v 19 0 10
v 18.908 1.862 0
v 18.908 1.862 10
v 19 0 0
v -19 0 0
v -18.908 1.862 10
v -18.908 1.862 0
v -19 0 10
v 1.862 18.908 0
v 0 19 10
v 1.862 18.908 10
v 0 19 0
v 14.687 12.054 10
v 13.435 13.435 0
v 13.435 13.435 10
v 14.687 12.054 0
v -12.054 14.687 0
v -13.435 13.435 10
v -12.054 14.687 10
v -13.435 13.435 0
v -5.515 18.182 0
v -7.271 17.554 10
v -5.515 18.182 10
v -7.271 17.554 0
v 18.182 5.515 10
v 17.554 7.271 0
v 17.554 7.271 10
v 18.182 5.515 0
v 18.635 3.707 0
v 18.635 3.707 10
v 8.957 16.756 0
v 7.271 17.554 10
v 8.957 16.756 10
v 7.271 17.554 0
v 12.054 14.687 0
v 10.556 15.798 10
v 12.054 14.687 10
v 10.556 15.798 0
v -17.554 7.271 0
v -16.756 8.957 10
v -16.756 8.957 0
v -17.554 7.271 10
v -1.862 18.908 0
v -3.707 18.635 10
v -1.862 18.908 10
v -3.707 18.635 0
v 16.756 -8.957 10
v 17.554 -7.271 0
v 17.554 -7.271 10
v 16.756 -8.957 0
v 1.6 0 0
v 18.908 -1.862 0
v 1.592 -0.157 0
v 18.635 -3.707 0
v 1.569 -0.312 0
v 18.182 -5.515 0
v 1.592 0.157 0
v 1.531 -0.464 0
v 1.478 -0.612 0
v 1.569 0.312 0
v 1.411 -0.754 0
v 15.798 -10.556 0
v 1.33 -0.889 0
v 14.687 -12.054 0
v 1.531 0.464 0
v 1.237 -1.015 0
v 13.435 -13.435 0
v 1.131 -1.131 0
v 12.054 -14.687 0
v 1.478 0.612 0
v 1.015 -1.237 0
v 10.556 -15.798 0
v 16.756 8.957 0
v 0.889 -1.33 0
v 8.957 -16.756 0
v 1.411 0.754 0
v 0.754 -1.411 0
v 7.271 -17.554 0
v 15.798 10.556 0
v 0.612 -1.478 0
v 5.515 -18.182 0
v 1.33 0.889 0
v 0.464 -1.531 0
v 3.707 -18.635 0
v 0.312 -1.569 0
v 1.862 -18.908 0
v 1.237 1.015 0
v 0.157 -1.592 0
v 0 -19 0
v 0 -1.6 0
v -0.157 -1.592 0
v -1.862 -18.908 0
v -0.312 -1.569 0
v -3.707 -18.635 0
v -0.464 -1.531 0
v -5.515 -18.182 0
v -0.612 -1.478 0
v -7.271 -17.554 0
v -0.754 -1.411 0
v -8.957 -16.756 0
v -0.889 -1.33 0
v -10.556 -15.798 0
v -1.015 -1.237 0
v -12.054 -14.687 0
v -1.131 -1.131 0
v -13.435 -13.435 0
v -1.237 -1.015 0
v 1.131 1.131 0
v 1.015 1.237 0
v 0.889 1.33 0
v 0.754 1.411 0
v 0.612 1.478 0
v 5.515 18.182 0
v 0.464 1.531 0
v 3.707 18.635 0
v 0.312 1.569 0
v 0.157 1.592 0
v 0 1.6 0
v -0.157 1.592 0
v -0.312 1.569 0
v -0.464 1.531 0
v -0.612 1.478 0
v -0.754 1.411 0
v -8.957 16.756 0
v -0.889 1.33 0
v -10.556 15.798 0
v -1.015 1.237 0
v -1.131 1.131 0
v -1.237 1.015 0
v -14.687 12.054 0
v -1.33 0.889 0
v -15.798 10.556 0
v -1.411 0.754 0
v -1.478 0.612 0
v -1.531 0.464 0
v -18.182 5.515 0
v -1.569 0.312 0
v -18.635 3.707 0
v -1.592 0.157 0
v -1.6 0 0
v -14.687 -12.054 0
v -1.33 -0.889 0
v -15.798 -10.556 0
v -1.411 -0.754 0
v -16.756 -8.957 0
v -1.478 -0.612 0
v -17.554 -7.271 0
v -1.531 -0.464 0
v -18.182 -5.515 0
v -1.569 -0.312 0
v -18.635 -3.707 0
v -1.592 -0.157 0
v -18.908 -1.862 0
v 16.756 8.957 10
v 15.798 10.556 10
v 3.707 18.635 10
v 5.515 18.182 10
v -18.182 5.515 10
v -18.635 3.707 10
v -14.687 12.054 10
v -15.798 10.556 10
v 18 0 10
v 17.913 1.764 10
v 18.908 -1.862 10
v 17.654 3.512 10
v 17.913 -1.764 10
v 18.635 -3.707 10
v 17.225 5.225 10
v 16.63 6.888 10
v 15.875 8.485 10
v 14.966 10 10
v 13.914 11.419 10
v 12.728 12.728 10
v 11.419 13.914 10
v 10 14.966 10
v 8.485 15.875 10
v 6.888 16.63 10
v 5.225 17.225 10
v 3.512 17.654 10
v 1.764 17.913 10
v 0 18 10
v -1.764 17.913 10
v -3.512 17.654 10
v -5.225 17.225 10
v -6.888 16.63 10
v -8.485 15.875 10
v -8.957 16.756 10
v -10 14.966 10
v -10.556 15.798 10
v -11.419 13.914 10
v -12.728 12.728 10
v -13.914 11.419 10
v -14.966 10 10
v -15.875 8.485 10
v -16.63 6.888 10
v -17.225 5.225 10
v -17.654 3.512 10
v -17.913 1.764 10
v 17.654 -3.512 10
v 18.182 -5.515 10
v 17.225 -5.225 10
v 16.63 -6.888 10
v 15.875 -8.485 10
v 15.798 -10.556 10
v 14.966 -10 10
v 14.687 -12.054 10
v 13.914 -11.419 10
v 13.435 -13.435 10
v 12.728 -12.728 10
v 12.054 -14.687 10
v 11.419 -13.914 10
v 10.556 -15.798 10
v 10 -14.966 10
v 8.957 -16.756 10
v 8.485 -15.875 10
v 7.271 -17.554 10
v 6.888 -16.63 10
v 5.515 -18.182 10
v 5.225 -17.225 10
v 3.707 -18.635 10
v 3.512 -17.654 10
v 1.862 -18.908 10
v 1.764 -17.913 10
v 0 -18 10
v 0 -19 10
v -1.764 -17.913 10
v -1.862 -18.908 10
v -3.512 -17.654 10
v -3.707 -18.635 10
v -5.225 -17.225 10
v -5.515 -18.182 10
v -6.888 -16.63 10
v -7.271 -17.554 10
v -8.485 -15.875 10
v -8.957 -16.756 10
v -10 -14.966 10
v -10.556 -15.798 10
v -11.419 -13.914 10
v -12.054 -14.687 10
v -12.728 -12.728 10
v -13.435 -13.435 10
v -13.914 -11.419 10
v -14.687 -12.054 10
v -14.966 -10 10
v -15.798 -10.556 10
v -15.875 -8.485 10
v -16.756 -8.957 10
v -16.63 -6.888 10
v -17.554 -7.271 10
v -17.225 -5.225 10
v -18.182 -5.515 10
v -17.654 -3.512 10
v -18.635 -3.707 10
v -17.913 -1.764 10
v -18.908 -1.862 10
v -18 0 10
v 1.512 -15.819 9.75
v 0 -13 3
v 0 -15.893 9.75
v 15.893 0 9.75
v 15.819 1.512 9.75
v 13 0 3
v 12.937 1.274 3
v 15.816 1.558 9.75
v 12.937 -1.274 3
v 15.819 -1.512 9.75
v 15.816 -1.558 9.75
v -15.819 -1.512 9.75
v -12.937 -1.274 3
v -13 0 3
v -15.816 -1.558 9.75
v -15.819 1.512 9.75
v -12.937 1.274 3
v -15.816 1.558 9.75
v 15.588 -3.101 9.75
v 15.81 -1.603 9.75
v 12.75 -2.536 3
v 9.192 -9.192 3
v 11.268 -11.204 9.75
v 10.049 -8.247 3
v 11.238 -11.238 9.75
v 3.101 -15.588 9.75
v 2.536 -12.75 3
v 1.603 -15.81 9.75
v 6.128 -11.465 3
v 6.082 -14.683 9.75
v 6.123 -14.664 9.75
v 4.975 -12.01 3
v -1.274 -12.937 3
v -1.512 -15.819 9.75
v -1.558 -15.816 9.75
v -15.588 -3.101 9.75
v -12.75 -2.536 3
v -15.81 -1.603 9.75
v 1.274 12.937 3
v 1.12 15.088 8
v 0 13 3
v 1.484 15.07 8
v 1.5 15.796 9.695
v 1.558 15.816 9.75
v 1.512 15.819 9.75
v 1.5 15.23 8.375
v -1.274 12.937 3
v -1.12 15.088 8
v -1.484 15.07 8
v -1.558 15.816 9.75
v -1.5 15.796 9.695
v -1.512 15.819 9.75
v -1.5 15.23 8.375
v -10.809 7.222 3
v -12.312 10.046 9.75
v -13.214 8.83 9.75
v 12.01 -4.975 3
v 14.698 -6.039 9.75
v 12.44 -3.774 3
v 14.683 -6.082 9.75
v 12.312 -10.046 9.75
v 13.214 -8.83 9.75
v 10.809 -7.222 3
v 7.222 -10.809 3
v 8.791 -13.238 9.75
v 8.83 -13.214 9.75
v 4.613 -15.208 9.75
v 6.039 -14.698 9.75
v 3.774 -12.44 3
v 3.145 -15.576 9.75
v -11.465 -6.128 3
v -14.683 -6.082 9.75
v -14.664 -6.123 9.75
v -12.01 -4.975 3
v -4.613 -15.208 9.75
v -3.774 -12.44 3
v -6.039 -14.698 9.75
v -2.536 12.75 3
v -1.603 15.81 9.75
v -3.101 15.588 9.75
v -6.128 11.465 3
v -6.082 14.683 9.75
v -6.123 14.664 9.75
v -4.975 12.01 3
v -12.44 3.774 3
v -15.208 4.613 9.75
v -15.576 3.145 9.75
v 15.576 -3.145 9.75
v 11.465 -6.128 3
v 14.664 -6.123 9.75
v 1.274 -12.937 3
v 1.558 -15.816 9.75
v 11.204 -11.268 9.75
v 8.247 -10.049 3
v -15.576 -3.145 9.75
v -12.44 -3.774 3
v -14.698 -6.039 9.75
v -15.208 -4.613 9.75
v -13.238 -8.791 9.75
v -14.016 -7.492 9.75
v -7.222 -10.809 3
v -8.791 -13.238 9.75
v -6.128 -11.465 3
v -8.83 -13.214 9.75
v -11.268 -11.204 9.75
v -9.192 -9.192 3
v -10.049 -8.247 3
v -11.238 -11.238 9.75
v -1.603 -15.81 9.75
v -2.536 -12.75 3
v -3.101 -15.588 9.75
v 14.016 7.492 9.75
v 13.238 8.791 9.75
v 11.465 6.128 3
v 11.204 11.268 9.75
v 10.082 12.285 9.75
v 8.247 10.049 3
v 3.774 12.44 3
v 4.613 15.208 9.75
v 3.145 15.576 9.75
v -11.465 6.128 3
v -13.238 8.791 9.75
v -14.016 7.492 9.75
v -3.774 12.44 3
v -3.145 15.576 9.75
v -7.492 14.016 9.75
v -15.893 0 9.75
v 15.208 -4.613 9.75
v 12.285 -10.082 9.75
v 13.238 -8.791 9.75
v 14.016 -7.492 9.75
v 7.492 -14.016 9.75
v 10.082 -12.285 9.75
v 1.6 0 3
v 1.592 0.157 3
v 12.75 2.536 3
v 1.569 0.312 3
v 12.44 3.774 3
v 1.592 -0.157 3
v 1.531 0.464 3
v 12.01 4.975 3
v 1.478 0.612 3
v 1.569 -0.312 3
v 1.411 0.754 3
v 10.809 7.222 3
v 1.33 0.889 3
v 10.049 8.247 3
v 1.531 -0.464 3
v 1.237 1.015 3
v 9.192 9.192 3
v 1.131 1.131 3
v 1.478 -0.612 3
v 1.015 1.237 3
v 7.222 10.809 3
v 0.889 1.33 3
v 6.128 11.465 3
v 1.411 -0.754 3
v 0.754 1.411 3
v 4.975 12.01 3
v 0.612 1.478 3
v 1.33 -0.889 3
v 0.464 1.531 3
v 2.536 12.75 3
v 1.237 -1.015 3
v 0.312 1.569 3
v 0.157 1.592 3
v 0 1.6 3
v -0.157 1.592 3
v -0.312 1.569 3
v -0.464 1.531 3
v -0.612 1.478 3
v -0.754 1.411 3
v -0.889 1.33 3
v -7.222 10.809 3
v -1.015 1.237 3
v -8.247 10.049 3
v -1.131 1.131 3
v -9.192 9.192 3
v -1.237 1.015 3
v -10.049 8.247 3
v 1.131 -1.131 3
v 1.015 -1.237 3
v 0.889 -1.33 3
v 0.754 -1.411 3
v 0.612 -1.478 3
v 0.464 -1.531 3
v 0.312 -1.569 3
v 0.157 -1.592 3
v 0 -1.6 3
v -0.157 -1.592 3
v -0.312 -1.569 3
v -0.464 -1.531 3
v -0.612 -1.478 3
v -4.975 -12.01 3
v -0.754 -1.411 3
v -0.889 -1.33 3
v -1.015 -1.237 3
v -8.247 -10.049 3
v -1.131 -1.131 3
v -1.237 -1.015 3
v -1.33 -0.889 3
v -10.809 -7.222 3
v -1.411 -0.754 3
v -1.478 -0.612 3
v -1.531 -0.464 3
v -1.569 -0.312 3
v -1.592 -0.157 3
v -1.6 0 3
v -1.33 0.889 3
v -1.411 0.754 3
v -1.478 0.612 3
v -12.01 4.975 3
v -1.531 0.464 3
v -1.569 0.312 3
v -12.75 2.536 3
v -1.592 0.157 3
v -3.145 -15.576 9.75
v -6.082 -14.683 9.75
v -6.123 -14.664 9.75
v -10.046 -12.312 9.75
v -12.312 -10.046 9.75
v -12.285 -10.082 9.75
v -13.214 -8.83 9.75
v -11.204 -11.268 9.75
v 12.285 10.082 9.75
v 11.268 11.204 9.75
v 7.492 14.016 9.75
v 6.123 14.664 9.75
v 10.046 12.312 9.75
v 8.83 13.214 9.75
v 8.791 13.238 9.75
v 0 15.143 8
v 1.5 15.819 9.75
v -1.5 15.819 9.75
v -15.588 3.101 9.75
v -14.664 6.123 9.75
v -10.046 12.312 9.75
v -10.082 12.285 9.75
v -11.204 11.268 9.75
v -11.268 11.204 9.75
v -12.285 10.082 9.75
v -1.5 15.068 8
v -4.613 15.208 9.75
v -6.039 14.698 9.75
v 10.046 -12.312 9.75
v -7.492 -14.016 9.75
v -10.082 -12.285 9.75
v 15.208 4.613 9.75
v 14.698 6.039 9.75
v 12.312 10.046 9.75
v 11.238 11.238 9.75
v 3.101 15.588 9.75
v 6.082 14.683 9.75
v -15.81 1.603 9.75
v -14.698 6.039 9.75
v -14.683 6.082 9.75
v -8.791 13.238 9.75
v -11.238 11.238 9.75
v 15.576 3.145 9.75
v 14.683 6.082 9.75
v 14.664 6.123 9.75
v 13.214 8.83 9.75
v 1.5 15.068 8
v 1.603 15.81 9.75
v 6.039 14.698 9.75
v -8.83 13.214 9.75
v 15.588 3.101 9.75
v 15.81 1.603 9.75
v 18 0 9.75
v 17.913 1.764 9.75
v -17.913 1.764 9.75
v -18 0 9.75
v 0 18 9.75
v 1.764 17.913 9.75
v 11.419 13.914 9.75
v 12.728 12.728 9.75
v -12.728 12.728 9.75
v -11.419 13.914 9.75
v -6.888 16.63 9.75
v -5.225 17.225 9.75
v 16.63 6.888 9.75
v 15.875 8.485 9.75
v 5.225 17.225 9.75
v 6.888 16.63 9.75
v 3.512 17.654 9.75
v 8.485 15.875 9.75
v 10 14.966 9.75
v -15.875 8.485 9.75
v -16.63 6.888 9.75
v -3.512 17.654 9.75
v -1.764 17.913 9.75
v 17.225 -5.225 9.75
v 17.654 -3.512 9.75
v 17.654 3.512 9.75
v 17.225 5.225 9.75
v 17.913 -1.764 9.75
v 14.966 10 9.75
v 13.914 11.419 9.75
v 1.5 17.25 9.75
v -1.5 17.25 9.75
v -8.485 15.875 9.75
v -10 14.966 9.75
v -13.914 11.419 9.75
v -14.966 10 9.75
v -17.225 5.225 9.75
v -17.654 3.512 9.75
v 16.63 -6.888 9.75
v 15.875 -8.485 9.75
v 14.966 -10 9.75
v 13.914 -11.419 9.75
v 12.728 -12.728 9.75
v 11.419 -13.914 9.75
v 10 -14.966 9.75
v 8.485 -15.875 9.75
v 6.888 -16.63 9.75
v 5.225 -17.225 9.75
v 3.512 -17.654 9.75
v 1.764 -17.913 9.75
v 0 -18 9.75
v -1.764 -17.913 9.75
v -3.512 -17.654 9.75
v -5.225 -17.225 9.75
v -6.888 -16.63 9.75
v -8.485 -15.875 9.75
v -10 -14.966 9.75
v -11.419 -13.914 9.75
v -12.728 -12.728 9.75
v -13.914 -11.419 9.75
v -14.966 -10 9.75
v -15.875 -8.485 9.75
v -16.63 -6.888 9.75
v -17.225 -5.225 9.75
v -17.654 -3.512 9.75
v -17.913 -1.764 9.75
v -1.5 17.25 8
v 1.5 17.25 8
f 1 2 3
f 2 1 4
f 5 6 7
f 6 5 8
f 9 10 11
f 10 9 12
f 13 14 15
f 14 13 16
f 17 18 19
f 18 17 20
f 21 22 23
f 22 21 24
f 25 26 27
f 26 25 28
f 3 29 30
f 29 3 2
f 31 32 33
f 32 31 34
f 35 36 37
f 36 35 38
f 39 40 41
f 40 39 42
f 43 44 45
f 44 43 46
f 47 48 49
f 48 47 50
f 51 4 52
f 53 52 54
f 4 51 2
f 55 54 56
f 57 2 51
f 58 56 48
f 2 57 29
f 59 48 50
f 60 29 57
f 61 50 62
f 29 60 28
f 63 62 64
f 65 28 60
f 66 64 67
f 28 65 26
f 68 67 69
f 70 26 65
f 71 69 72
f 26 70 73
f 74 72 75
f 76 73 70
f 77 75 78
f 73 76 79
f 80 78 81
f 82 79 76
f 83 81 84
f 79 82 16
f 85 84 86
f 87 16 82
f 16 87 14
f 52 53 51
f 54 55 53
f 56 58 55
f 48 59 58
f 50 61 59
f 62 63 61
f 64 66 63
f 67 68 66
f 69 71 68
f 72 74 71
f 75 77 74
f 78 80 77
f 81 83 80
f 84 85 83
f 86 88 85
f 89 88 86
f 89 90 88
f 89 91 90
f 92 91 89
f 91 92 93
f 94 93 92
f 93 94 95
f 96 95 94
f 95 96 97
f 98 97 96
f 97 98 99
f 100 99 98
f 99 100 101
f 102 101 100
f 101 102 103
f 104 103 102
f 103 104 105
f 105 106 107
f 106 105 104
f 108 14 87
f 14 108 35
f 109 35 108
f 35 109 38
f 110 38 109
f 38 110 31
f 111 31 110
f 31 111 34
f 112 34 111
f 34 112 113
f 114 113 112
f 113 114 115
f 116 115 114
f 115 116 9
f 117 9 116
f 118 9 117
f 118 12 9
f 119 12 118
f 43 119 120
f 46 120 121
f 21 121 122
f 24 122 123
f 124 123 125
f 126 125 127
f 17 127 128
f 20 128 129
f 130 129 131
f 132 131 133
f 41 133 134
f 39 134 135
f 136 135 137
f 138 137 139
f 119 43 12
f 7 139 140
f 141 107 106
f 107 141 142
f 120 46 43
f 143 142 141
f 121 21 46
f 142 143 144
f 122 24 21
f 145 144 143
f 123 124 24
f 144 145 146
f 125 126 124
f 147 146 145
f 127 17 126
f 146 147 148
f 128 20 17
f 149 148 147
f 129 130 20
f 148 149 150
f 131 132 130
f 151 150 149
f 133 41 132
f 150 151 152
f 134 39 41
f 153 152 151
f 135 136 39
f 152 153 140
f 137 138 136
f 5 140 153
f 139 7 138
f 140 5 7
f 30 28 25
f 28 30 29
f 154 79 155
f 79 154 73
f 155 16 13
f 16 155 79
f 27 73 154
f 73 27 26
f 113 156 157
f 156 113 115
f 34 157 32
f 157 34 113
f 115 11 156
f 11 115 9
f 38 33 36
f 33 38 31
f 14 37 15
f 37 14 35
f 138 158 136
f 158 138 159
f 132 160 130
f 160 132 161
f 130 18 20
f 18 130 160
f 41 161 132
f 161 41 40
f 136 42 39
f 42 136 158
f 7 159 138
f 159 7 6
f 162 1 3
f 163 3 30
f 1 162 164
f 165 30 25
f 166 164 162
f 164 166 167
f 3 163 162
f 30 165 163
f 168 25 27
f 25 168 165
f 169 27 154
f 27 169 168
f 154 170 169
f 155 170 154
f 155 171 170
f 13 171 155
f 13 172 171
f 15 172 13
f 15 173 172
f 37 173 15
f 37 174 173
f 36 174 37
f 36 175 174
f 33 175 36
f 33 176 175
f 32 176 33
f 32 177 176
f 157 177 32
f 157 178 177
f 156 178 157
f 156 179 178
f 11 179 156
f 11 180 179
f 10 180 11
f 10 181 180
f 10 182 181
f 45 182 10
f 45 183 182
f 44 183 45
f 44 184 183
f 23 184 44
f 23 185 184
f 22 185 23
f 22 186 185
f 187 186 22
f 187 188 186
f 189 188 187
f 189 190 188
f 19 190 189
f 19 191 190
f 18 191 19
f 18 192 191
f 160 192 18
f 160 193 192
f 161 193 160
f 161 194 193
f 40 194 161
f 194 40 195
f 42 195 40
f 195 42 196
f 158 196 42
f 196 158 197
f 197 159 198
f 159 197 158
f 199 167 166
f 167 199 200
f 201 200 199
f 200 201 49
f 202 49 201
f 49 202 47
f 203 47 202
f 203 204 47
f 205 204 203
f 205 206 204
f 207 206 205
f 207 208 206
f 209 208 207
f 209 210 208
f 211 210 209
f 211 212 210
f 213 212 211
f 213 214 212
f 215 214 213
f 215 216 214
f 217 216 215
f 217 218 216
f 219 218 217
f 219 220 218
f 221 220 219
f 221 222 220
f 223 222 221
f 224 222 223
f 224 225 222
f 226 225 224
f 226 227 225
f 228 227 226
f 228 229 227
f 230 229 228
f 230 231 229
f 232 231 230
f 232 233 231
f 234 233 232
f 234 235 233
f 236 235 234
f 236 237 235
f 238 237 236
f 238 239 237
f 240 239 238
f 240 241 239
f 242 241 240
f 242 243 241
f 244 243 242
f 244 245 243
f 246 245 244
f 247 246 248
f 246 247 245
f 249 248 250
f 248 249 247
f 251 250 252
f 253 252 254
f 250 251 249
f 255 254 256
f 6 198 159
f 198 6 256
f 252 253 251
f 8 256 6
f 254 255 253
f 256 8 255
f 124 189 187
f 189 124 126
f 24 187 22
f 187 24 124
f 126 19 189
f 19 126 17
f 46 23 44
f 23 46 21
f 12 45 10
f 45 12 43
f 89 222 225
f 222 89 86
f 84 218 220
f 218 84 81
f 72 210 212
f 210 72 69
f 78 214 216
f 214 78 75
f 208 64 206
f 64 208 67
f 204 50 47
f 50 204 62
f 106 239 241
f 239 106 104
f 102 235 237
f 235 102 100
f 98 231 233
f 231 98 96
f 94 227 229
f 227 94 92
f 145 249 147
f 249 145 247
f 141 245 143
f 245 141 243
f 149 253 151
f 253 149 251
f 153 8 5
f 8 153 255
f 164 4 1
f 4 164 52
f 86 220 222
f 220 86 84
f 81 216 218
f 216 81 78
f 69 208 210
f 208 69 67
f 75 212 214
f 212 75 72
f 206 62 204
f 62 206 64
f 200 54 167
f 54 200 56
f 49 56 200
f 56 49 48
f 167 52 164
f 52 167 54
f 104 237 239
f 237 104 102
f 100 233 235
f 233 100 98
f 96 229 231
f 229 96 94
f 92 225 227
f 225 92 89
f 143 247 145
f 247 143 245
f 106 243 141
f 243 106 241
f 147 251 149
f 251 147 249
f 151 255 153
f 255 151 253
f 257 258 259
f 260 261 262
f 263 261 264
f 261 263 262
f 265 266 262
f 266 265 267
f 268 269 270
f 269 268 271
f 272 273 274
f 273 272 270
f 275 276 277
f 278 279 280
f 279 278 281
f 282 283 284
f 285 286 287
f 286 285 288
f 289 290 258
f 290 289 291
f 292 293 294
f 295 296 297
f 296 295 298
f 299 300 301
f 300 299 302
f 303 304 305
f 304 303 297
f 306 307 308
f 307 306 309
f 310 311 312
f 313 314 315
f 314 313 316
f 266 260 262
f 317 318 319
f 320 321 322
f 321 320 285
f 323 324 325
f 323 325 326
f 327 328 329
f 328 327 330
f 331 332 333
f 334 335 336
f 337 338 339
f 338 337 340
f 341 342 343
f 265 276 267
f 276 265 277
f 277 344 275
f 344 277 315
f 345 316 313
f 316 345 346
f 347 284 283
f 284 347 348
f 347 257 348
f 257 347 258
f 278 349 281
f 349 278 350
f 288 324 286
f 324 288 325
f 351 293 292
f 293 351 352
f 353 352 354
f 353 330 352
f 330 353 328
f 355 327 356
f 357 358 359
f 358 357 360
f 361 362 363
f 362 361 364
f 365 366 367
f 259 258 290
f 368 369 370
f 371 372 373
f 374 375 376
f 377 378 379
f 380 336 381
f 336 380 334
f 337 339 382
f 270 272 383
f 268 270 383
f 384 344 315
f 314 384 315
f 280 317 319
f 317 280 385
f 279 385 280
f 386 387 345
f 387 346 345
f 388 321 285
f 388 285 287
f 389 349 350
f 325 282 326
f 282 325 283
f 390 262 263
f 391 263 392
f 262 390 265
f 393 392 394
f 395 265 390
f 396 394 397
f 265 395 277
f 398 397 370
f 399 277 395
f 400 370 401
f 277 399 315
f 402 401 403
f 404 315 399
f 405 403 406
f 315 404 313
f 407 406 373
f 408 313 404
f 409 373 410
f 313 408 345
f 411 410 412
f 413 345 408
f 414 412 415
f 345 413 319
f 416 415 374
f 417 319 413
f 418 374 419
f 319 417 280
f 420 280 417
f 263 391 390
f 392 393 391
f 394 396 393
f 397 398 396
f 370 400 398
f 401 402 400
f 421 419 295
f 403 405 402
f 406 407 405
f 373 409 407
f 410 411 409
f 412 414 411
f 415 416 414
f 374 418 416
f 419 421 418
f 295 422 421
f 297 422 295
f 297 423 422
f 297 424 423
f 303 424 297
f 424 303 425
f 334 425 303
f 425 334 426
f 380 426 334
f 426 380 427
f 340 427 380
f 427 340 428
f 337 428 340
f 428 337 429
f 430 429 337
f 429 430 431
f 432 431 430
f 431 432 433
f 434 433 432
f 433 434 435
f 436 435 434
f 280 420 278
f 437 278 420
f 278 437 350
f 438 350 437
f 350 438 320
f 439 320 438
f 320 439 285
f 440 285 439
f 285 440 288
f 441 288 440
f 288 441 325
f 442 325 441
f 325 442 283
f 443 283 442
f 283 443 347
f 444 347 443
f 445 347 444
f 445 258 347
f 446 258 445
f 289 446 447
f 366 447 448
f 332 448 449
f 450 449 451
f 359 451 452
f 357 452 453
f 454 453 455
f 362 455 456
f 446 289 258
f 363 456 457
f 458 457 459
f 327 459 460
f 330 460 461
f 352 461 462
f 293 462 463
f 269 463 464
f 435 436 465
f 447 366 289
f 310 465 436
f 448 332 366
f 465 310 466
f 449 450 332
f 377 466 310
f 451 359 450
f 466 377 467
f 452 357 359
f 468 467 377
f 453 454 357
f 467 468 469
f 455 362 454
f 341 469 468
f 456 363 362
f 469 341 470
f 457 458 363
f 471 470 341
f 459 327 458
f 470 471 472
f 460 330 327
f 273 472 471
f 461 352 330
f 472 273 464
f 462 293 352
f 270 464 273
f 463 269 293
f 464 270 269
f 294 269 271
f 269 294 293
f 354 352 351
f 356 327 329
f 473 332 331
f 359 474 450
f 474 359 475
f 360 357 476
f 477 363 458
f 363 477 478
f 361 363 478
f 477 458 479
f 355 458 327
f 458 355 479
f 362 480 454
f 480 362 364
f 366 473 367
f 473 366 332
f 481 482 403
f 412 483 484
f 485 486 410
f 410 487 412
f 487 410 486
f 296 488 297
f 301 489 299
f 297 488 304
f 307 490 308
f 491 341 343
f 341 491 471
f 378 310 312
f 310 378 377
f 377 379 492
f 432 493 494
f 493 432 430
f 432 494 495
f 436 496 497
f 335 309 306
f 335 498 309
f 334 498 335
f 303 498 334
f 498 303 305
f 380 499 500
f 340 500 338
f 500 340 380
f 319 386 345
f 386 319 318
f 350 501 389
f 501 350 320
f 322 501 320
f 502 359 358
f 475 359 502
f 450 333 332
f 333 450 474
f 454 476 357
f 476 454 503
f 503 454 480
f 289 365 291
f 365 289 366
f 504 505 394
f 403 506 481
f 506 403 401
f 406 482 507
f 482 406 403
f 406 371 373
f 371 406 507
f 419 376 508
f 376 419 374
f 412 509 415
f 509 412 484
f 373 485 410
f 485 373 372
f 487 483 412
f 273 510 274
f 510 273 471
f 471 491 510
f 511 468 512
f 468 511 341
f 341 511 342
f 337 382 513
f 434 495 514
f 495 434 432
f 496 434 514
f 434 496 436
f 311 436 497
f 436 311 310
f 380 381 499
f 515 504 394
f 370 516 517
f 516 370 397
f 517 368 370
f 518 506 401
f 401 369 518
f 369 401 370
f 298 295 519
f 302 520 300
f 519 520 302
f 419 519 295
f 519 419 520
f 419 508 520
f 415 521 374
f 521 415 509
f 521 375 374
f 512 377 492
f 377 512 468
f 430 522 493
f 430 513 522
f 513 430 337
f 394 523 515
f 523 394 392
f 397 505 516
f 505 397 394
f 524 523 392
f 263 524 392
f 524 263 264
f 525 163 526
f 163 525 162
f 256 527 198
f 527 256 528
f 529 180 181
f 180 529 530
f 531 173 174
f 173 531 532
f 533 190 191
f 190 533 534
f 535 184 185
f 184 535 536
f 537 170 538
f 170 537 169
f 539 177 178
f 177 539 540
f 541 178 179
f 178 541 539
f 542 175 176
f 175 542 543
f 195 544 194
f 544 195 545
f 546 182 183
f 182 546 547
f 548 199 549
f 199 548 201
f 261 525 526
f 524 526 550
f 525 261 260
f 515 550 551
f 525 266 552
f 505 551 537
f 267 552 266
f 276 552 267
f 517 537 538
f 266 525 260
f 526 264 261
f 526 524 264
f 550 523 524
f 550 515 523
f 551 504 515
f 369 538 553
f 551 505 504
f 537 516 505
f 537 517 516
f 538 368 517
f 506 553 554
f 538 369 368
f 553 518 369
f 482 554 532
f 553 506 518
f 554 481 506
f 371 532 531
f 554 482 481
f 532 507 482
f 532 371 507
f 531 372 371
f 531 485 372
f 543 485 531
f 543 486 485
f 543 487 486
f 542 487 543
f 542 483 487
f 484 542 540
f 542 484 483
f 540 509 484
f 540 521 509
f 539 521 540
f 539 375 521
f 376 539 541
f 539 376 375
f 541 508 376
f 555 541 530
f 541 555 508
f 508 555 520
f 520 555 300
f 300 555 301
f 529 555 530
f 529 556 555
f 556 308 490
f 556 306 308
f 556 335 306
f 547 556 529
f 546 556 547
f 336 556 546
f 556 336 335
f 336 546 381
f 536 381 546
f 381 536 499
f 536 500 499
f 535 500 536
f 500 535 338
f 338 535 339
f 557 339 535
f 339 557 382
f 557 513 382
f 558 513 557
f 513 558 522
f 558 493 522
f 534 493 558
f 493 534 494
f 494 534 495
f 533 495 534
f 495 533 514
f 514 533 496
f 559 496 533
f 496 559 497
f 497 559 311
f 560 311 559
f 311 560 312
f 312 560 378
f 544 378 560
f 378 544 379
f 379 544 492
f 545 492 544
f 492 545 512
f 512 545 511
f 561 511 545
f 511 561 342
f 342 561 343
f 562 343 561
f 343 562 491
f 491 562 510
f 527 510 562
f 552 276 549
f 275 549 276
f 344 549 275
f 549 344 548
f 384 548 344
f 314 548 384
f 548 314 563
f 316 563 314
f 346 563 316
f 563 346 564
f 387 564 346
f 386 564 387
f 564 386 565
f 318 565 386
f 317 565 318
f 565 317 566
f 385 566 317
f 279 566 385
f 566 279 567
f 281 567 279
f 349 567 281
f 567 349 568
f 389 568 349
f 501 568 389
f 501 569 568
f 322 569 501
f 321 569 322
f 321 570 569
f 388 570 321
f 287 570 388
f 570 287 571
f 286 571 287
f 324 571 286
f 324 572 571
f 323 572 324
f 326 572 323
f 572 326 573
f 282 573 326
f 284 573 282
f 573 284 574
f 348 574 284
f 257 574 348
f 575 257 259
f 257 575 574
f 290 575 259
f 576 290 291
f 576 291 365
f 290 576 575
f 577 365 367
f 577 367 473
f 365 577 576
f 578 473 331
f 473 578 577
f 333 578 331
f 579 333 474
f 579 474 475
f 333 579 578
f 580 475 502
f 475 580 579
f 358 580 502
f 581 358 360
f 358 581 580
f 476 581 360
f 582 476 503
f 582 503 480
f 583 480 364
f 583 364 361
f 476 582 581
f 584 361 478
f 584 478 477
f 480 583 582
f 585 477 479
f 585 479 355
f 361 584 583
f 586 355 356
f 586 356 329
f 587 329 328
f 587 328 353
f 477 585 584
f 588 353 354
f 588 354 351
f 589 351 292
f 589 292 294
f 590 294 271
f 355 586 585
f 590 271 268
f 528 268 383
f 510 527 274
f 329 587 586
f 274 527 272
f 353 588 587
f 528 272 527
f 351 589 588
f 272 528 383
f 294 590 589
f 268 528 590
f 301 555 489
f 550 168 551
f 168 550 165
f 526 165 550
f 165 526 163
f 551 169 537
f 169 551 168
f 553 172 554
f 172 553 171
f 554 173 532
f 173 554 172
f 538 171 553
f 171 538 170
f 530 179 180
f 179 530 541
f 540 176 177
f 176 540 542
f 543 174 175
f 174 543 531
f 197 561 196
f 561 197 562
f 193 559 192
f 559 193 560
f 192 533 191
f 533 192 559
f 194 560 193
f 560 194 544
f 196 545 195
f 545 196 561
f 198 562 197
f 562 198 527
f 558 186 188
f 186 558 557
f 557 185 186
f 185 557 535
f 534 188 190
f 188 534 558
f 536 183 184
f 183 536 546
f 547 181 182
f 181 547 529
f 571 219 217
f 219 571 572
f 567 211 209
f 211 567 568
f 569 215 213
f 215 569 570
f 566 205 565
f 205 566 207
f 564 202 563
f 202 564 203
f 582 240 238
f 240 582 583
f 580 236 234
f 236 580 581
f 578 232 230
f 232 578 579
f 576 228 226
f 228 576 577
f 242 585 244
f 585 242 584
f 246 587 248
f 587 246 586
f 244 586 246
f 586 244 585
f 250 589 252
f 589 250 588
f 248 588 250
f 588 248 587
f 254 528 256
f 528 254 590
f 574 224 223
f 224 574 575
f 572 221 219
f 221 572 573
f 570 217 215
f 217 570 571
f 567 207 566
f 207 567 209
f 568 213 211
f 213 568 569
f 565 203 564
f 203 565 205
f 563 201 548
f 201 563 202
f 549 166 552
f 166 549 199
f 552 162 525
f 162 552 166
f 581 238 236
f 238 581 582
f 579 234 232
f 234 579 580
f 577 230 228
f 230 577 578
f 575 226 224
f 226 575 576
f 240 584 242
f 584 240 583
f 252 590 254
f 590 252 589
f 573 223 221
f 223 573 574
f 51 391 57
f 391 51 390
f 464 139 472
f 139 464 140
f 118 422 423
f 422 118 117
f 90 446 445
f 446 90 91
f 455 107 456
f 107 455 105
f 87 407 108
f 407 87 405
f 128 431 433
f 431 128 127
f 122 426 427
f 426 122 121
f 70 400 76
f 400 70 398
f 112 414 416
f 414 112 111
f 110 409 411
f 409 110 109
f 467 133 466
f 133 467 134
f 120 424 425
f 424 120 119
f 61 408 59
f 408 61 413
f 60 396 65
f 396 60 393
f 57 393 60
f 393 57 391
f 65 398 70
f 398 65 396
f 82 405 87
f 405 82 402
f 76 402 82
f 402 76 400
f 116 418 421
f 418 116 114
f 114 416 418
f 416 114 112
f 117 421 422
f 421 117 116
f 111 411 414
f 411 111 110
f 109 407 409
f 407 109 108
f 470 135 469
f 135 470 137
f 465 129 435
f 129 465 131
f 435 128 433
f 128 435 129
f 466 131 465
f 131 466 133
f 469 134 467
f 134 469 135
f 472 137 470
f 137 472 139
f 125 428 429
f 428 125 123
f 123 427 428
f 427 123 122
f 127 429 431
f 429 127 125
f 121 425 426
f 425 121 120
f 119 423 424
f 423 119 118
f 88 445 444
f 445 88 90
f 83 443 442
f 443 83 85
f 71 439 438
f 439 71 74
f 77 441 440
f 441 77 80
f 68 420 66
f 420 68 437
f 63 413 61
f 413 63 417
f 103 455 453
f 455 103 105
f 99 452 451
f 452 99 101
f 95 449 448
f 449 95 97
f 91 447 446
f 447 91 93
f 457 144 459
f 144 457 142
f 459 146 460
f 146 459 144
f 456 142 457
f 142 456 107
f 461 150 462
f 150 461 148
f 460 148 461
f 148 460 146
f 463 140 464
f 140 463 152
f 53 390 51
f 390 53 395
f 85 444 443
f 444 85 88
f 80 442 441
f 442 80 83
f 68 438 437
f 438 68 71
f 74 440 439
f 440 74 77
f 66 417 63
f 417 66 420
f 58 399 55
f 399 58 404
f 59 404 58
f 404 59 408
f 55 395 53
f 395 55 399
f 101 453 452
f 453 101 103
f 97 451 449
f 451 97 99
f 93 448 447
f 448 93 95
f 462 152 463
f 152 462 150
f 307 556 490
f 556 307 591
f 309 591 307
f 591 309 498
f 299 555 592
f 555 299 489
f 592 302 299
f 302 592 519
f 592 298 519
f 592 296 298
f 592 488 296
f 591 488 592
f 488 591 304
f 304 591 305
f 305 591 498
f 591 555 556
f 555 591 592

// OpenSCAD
//Piezo Holder
$fn=64;
diameterPiezo=36.0; //intern
radiusPiezo=diameterPiezo/2;
inlay=0.25;
width_inlay=2.0;
width_rim=1.0;
width_bottom=5.0;
height=10;
height_bottom=3;
radius_hole=1.6;
rad1=radiusPiezo+width_rim;
rad2=radiusPiezo-width_bottom;
rad3=radiusPiezo-width_inlay;
rad4=radiusPiezo;
h1=height-height_bottom;
	difference()
    {    
        cylinder(r=rad1,h=height);
        translate ([0,0,height_bottom])
        cylinder (r1=rad2,r2=rad3,h=h1);
        translate ([0,0,height-inlay])
        cylinder (r=rad4,h=height);
        translate ([0,0,-2])
        cylinder (r=radius_hole,h=height);
      //Slot for solder
        translate ([0,rad4-2.75,height])
        cube(size = [3,4,4], center = true);
    }
    
 
